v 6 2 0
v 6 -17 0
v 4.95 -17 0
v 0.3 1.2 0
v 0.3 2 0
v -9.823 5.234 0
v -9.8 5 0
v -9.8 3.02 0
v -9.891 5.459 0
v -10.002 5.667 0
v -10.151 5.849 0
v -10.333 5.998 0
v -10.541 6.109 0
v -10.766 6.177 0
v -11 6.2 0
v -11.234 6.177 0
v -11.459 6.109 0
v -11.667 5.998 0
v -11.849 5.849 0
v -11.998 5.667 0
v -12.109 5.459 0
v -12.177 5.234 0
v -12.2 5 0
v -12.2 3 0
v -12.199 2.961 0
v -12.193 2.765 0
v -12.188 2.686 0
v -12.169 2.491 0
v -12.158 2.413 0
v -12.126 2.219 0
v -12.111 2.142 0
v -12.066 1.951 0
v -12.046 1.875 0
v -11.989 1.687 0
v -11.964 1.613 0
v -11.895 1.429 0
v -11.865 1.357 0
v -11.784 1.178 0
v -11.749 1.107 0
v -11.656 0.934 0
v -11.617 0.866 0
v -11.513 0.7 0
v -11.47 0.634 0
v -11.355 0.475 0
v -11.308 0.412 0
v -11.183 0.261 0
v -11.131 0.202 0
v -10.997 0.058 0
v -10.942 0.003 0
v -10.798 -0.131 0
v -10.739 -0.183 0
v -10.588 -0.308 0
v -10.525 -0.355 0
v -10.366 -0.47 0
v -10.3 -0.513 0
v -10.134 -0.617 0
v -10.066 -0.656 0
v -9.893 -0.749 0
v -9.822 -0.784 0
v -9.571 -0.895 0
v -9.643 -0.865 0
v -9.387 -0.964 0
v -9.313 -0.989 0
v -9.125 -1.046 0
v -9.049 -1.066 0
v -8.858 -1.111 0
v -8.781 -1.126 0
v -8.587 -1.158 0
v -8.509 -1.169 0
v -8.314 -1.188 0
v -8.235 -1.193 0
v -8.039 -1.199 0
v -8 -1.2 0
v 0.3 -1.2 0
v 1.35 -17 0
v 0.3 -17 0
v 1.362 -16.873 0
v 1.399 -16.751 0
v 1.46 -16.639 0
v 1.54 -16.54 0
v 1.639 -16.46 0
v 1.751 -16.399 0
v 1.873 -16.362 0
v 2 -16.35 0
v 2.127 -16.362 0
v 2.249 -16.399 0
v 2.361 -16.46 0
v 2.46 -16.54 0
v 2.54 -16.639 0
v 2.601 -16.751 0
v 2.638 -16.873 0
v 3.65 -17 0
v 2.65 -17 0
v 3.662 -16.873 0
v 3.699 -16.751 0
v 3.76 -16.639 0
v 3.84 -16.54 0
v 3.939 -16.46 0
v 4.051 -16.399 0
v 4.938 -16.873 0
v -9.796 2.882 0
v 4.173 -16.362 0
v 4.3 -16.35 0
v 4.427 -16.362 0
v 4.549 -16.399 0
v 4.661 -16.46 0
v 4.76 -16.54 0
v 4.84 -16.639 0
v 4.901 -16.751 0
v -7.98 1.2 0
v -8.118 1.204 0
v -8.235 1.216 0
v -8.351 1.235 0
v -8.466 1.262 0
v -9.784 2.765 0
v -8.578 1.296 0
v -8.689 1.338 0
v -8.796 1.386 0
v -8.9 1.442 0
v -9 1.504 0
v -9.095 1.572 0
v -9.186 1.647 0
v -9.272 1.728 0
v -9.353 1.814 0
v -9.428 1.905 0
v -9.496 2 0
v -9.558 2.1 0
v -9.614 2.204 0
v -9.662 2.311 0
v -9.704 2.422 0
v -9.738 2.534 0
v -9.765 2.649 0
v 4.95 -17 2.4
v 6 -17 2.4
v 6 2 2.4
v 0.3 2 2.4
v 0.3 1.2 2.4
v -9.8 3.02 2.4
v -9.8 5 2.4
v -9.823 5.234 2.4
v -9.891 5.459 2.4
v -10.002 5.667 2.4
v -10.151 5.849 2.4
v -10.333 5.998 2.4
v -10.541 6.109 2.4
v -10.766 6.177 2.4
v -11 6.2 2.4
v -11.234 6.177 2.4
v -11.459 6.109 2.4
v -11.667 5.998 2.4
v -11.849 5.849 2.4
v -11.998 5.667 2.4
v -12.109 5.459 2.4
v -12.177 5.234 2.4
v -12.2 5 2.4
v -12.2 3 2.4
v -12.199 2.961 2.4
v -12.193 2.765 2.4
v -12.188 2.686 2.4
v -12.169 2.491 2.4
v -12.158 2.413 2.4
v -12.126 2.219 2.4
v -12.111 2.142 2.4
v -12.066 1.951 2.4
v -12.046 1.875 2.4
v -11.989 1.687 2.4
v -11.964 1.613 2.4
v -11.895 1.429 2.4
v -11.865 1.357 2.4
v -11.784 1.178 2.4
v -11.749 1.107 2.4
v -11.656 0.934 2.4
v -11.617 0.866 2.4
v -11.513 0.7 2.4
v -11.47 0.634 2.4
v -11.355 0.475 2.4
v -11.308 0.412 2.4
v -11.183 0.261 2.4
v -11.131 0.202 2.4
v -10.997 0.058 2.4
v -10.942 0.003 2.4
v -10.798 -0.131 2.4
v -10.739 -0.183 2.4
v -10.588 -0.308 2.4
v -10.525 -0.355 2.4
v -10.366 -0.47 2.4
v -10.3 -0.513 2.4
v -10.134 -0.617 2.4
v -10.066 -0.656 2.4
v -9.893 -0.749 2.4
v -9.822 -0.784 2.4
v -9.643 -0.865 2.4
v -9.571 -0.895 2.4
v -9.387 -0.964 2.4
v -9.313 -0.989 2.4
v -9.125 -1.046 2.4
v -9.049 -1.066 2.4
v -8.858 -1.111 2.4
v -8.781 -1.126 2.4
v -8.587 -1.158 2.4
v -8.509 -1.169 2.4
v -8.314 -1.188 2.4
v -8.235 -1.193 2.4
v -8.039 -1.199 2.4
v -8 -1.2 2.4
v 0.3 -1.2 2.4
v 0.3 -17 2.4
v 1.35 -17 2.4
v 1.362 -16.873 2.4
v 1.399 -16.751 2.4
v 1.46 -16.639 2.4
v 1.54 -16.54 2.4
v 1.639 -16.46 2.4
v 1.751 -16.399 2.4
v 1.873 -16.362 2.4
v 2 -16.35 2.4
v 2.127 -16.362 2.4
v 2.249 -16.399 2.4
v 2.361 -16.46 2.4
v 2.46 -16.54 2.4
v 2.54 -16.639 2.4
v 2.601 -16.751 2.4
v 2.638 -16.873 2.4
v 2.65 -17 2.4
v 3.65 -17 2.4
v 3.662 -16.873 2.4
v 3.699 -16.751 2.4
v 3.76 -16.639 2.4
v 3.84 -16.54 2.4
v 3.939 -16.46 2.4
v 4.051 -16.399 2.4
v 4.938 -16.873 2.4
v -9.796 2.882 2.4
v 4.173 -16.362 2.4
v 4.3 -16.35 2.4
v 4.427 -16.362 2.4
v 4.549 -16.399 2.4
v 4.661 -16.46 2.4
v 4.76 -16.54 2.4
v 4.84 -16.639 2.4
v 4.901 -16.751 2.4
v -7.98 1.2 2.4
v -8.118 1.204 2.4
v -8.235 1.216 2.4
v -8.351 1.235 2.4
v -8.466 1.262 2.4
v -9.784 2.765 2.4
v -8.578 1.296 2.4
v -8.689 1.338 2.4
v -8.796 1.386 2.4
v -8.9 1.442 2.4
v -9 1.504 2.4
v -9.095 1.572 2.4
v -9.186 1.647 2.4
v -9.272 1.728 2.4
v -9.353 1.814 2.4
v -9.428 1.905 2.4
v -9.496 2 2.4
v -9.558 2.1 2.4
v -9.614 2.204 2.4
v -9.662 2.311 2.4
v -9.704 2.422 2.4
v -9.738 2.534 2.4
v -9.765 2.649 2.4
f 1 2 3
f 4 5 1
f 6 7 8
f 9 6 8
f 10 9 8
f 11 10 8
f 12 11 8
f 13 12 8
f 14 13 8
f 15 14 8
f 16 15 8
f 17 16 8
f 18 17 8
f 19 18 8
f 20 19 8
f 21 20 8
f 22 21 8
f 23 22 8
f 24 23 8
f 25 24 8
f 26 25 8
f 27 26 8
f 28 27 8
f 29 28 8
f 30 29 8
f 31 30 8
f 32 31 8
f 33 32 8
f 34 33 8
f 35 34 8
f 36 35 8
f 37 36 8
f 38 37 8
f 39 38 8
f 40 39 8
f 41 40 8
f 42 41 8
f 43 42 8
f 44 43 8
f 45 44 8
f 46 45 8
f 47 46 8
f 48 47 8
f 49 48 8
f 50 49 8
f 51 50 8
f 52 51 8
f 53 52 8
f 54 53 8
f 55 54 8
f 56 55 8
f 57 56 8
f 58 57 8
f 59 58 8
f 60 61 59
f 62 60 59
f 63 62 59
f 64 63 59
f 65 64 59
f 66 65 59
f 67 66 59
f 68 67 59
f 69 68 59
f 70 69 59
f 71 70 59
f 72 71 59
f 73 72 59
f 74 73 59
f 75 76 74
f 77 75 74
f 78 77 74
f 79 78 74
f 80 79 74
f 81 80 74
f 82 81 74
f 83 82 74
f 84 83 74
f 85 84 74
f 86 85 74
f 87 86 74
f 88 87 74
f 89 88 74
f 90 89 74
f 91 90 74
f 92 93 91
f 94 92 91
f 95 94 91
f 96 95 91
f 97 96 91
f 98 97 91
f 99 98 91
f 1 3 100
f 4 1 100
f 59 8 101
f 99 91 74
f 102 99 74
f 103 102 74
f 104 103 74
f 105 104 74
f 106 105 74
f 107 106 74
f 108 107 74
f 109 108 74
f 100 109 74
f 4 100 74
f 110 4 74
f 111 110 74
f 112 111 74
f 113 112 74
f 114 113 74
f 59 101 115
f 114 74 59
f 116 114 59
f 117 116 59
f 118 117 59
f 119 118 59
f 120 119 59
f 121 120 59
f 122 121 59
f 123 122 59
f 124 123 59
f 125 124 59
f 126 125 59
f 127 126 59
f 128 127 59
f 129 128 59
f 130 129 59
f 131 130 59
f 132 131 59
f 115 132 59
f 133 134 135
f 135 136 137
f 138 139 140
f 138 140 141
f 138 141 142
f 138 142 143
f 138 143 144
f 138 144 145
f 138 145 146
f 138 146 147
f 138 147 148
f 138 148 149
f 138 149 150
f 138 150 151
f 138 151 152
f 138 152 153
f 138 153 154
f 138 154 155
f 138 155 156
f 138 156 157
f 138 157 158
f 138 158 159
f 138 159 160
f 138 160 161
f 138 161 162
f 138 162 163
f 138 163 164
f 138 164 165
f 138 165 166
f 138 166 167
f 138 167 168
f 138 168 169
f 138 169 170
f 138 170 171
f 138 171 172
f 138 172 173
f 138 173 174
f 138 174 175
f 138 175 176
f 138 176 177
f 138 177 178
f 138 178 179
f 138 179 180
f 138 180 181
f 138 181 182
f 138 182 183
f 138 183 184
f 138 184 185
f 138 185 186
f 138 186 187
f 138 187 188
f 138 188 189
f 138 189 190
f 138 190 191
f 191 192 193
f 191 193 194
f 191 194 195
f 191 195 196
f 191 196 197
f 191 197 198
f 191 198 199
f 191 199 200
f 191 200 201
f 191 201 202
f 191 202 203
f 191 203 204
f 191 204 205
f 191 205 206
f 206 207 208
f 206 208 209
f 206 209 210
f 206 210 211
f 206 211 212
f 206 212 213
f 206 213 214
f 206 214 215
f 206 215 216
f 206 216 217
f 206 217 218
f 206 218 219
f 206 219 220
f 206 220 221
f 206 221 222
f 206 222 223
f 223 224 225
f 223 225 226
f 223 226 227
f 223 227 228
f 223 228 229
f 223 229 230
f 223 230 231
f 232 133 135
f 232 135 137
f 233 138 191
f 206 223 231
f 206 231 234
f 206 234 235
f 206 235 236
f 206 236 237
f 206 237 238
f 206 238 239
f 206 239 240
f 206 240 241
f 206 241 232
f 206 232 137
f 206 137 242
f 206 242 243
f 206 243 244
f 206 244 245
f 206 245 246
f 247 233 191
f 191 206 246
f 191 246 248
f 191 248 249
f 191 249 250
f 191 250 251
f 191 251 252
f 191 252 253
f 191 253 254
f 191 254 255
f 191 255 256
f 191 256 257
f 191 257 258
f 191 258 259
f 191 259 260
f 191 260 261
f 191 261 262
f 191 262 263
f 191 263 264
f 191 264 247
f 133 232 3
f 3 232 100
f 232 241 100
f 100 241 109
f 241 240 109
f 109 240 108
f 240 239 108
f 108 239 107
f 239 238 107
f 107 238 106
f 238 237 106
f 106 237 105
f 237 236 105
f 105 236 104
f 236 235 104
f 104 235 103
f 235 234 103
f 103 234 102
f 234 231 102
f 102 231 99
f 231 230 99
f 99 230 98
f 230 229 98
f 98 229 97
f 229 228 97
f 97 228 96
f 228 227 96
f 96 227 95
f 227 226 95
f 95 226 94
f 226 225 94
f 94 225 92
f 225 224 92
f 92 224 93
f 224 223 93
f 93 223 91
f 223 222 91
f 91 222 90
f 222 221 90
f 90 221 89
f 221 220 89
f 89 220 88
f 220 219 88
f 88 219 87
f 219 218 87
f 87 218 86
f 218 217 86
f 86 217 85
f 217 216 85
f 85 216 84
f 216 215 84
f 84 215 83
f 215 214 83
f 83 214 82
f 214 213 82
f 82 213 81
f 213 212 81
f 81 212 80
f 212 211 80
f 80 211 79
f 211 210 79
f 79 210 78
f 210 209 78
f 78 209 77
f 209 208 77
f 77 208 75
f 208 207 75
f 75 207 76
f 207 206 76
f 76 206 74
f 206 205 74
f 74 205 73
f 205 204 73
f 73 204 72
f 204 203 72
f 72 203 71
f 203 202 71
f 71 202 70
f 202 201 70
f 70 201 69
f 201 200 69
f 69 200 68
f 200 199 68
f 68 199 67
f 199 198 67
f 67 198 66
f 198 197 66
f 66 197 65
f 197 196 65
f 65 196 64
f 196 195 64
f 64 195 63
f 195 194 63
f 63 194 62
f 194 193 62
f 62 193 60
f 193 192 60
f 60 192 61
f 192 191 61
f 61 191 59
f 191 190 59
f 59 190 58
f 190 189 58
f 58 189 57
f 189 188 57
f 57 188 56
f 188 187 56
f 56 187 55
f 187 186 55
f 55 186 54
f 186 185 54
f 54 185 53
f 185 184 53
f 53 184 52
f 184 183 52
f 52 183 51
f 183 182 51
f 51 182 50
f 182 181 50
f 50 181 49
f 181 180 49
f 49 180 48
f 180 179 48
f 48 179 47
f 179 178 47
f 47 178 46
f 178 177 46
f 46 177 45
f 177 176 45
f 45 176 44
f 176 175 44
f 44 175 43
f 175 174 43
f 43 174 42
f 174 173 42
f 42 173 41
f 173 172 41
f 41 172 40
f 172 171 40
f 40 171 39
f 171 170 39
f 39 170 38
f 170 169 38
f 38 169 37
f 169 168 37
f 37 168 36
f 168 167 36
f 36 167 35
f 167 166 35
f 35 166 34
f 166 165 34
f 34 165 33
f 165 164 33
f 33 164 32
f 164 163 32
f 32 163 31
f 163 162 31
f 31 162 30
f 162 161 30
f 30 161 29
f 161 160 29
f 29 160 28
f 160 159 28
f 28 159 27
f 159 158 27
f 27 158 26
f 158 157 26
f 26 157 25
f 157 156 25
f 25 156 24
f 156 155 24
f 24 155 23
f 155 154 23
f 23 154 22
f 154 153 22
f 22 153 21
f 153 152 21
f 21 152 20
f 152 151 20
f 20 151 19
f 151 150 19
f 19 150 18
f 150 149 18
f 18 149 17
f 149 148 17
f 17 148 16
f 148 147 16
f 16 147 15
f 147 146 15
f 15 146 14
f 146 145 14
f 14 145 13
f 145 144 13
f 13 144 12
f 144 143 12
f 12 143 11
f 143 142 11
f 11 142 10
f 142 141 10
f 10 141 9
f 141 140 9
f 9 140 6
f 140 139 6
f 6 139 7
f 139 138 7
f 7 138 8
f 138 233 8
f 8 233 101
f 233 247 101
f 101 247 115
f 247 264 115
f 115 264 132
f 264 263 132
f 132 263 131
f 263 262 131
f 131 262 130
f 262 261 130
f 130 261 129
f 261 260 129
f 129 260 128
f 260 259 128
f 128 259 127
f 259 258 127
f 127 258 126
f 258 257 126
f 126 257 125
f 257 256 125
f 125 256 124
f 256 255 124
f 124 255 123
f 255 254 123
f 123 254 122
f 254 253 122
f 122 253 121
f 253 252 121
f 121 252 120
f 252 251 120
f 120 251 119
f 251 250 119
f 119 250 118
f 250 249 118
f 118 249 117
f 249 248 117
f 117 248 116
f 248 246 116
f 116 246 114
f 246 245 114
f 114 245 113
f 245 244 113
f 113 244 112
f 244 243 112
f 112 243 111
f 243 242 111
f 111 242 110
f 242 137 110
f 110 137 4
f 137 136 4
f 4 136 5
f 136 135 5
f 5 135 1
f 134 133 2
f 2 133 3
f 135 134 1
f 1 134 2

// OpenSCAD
// Unloaded fit test; side-down print. Original coordinates, mm.
linear_extrude(height=2.4) polygon(points=[[6.0, -17.0], [4.95, -17.0], [4.9375104322620995, -16.873191290689515], [4.900521696132336, -16.75125576896269], [4.840455247996655, -16.63887934853726], [4.759619407771256, -16.540380592228743], [4.661120651462741, -16.459544752003346], [4.5487442310373085, -16.399478303867664], [4.4268087093104835, -16.3624895677379], [4.3, -16.35], [4.173191290689516, -16.3624895677379], [4.051255768962691, -16.399478303867664], [3.9388793485372586, -16.459544752003346], [3.840380592228744, -16.540380592228743], [3.7595447520033454, -16.63887934853726], [3.6994783038676635, -16.751255768962693], [3.6624895677379, -16.873191290689515], [3.65, -17.0], [2.65, -17.0], [2.6375104322620997, -16.873191290689515], [2.6005216961323363, -16.75125576896269], [2.5404552479966545, -16.63887934853726], [2.459619407771256, -16.540380592228743], [2.361120651462741, -16.459544752003346], [2.2487442310373087, -16.399478303867664], [2.1268087093104833, -16.3624895677379], [1.9999999999999998, -16.35], [1.8731912906895163, -16.3624895677379], [1.7512557689626913, -16.399478303867664], [1.6388793485372586, -16.459544752003346], [1.5403805922287441, -16.540380592228743], [1.4595447520033455, -16.63887934853726], [1.3994783038676635, -16.751255768962693], [1.3624895677379003, -16.873191290689515], [1.35, -17.0], [0.3, -17.0], [0.3, -1.2], [-8.0, -1.2], [-8.039262899386133, -1.1993575049716385], [-8.235472287076561, -1.1929342746874487], [-8.3138299560859, -1.1877984417224465], [-8.509199145055627, -1.1685562561280673], [-8.587053144733662, -1.1583065826232855], [-8.780745534121891, -1.1263278397115457], [-8.857762481689628, -1.1110082163424924], [-9.048948650948807, -1.0664298540000061], [-9.12479874801292, -1.046105881745855], [-9.312660008614841, -0.989118791363967], [-9.387018453414969, -0.9638775005941067], [-9.570750354600753, -0.8947257096426497], [-9.643298732860536, -0.8646751874392735], [-9.822114506422272, -0.7836548145034787], [-9.892542154848204, -0.7489237418160897], [-10.0656760841912, -0.6563817285713405], [-10.13368142078044, -0.6171188291852114], [-10.300392119839248, -0.513451454739531], [-10.36568393530017, -0.46982485841757393], [-10.525257523267525, -0.35547604238364405], [-10.587556228022539, -0.30767256490898875], [-10.739309386296583, -0.18313196647221563], [-10.798348207727653, -0.13135630967433454], [-10.941631105987089, 0.002842769202955231], [-10.99715723079704, 0.05836889401290646], [-11.13135630967433, 0.2016517922723423], [-11.183131966472217, 0.2606906137034185], [-11.30767256490899, 0.4124437719774635], [-11.35547604238365, 0.4747424767324827], [-11.469824858417578, 0.6343160646998375], [-11.513451454739526, 0.6996078801607467], [-11.617118829185207, 0.8663185792195535], [-11.656381728571342, 0.9343239158088013], [-11.74892374181609, 1.1074578451517973], [-11.783654814503478, 1.1778854935777257], [-11.864675187439273, 1.3567012671394605], [-11.89472570964265, 1.4292496453992485], [-11.963877500594107, 1.6129815465850328], [-11.989118791363968, 1.6873399913851581], [-12.046105881745856, 1.8752012519870802], [-12.066429854000006, 1.9510513490511916], [-12.111008216342492, 2.14223751831037], [-12.126327839711546, 2.2192544658781093], [-12.158306582623286, 2.412946855266339], [-12.168556256128067, 2.4908008549443728], [-12.187798441722446, 2.6861700439140983], [-12.192934274687449, 2.7645277129234374], [-12.199357504971639, 2.960737100613867], [-12.2, 3.0], [-12.2, 5.0], [-12.176942336483876, 5.234108386419354], [-12.108655439013544, 5.4592201188381075], [-11.997763534763054, 5.666684279623523], [-11.848528137423857, 5.848528137423857], [-11.666684279623523, 5.997763534763054], [-11.459220118838108, 6.108655439013544], [-11.234108386419354, 6.176942336483877], [-11.0, 6.2], [-10.765891613580646, 6.176942336483877], [-10.540779881161892, 6.108655439013544], [-10.333315720376477, 5.997763534763054], [-10.151471862576143, 5.848528137423857], [-10.002236465236946, 5.666684279623523], [-9.891344560986456, 5.4592201188381075], [-9.823057663516124, 5.234108386419354], [-9.8, 5.0], [-9.8, 3.019636706562397], [-9.795504598985058, 2.8823164110818267], [-9.783963410838911, 2.7651367613585367], [-9.764783017488503, 2.6489628320799428], [-9.738045552322793, 2.5342920978466092], [-9.703865509272424, 2.4216155963470474], [-9.66238925252917, 2.311415825659156], [-9.613794389791934, 2.2041646781191235], [-9.55828901172339, 2.1003214196062565], [-9.49611080087377, 2.000330722895815], [-9.427526013887695, 1.9046207635019419], [-9.352828341352376, 1.8136013861644398], [-9.2723376501694, 1.727662349830608], [-9.186398613835562, 1.6471716586476266], [-9.095379236498058, 1.572473986112305], [-8.999669277104188, 1.503889199126231], [-8.89967858039373, 1.4417109882766026], [-8.795835321880874, 1.3862056102080647], [-8.68858417434086, 1.3376107474708359], [-8.578384403652931, 1.296134490727569], [-8.4657079021534, 1.2619544476772075], [-8.351037167920055, 1.235216982511497], [-8.234863238641475, 1.2160365891610905], [-8.117683588918164, 1.2044954010149407], [-7.980363293437629, 1.2], [0.3, 1.2], [0.3, 2.0], [6.0, 2.0], [6.0, -17.0]]);
